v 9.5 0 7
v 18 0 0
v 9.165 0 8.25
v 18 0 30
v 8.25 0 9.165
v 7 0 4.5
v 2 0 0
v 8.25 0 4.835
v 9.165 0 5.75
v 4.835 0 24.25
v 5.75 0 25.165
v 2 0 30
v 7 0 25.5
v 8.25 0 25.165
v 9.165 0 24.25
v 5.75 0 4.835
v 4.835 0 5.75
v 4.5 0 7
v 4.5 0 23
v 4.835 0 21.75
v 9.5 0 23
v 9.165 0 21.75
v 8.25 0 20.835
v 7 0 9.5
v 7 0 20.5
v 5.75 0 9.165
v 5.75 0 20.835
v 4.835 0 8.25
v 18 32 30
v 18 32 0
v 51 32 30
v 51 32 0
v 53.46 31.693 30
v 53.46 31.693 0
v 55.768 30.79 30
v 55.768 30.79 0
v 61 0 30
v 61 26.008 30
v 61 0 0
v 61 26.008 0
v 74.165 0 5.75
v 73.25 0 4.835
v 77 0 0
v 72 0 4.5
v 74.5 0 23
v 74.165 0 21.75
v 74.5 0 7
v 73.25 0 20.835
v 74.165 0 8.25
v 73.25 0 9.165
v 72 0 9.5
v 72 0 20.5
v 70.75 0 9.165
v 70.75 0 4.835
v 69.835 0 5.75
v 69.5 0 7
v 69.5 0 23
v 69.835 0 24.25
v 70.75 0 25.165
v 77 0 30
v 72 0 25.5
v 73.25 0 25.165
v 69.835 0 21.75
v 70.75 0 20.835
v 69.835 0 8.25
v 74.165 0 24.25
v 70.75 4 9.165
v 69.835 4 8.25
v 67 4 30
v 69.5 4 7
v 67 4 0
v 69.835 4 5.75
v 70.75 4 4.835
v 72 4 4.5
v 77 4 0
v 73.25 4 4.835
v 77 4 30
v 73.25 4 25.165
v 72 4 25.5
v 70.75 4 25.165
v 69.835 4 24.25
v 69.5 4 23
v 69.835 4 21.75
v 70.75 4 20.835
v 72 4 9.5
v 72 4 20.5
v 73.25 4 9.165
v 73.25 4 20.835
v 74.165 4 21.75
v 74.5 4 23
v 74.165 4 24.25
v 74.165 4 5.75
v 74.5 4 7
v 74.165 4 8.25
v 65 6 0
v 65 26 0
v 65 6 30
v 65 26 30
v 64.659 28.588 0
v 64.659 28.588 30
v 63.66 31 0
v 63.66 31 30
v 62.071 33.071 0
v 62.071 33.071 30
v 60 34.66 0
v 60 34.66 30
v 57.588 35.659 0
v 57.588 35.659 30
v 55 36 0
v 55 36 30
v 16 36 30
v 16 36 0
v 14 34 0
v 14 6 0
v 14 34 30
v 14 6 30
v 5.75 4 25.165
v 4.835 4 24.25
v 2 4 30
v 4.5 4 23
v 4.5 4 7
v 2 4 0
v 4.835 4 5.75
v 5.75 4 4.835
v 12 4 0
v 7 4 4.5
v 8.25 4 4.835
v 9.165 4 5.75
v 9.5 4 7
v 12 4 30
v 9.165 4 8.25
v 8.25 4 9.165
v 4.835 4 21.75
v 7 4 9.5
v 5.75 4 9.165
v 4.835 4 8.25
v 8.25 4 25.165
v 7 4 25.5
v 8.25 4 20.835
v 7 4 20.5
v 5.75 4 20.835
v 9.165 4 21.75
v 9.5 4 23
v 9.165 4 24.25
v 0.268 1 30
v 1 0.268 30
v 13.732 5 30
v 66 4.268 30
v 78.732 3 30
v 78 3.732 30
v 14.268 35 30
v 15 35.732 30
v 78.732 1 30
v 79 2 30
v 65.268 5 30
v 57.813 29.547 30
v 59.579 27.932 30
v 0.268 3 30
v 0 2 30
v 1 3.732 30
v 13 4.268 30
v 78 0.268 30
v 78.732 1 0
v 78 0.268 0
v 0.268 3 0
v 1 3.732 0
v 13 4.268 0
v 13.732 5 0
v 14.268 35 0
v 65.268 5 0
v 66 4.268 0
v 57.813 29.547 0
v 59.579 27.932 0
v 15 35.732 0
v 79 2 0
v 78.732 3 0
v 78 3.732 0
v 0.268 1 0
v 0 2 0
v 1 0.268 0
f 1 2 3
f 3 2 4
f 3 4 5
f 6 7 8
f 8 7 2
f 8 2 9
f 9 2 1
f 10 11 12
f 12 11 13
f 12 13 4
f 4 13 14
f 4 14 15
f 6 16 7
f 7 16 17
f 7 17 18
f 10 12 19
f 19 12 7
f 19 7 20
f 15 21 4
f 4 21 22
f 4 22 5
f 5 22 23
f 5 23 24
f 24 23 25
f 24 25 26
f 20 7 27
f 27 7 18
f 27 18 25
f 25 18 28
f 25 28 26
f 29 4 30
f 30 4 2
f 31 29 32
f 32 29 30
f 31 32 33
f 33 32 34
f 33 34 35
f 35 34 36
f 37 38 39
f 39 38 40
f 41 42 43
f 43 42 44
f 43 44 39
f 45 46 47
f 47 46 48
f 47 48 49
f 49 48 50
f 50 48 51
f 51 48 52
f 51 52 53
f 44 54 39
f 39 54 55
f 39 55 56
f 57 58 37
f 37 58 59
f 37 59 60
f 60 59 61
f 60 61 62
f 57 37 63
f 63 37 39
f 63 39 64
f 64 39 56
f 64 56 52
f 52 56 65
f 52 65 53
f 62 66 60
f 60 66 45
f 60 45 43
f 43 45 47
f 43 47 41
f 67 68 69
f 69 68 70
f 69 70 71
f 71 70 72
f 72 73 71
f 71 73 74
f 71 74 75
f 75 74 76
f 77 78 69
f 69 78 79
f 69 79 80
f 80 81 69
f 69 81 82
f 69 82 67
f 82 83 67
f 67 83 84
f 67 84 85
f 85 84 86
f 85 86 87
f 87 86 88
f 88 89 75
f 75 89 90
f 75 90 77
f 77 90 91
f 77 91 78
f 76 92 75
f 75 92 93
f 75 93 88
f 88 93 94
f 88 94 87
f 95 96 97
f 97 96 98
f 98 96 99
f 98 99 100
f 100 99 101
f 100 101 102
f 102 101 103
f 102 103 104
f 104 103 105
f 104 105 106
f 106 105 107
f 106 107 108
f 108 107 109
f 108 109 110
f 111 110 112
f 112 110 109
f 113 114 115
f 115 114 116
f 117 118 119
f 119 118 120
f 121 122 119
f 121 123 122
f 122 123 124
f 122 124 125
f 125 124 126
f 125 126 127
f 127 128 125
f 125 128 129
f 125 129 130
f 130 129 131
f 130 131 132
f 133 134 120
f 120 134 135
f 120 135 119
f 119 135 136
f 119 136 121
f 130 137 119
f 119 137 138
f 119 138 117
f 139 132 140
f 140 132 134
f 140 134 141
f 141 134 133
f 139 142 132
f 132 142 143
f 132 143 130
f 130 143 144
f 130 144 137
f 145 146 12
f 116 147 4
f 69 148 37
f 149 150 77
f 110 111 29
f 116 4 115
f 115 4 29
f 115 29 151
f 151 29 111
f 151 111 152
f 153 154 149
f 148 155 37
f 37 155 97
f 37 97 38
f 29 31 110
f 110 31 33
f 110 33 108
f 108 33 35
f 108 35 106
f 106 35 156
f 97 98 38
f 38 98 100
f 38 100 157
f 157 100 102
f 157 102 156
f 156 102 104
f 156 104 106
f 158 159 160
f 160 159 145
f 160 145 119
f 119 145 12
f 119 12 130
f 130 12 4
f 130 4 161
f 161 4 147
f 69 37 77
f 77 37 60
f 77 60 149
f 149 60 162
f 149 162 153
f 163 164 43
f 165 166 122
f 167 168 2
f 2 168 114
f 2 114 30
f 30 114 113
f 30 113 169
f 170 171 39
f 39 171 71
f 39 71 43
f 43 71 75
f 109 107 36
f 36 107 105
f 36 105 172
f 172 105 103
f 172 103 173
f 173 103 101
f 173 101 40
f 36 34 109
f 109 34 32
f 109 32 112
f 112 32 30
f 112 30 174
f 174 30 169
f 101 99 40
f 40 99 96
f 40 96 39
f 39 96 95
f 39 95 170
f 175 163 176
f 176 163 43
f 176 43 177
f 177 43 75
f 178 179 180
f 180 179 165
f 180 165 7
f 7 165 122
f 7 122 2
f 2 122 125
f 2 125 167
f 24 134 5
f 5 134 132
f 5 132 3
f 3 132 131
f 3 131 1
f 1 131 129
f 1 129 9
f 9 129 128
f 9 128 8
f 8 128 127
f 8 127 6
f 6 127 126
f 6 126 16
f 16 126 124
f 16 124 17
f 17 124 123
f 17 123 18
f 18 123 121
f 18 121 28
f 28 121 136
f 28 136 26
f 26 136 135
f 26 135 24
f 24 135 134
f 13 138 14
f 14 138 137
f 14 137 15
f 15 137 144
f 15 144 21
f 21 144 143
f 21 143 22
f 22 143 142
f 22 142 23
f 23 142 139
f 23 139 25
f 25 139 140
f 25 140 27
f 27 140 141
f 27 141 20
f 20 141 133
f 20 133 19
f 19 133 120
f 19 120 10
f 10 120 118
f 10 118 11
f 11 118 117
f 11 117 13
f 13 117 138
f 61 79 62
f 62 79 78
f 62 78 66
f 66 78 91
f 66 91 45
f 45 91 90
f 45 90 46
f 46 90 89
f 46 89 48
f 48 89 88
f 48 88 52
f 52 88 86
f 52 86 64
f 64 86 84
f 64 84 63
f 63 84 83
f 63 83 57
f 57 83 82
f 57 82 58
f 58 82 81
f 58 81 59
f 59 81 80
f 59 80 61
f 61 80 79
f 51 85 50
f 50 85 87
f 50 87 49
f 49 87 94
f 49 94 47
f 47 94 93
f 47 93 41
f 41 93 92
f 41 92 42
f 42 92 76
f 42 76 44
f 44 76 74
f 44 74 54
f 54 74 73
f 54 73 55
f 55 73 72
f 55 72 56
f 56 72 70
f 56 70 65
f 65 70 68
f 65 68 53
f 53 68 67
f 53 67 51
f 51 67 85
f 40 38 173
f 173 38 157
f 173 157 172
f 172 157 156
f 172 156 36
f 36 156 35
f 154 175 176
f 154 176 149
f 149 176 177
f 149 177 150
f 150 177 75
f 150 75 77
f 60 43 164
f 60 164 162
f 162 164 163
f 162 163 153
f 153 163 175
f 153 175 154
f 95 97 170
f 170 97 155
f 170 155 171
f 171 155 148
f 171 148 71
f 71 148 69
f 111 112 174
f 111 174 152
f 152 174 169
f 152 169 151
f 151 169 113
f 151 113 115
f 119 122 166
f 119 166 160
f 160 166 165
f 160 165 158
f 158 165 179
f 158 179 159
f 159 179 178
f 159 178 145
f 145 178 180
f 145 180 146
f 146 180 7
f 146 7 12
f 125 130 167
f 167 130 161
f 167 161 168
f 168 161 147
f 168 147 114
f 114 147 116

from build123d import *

# Parameters (mm, degrees)
BOSS_EXTRUDE1_DEPTH = 30
SKETCH2_R           = 2.5
CUT_EXTRUDE1_DEPTH  = 91.360389552
CUT_EXTRUDE2_DEPTH  = 92.853143659
FILLET1_R           = 2


with BuildPart() as part:
    # Sketch1 → Boss-Extrude1 (new body)
    with BuildSketch(Plane.XY):
        with BuildLine():
            Line((0, 0), (18, 0))
            Line((18, 0), (18, 32))
            Line((18, 32), (51, 32))
            ThreePointArc((51, 32), (58.071067812, 29.071067812), (61, 22))
            Line((61, 22), (61, 0))
            Line((61, 0), (79, 0))
            Line((79, 0), (79, 4))
            Line((79, 4), (65, 4))
            Line((65, 4), (65, 26))
            ThreePointArc((65, 26), (62.071067812, 33.071067812), (55, 36))
            Line((55, 36), (14, 36))
            Line((14, 36), (14, 4))
            Line((14, 4), (0, 4))
            Line((0, 4), (0, 0))
        make_face()
    extrude(amount=BOSS_EXTRUDE1_DEPTH)

    # Sketch2 → Cut-Extrude1 (cut, through all)
    with BuildSketch(Plane(origin=(0, 4, 0), x_dir=(1, 0, 0), z_dir=(0, 1, 0))):
        with Locations(Location((7, -7, 0), (0, 0, 270))):
            Circle(SKETCH2_R)
        with Locations(Location((7, -23, 0), (0, 0, 270))):
            Circle(SKETCH2_R)
        with Locations(Location((72, -7, 0), (0, 0, 270))):
            Circle(SKETCH2_R)
        with Locations(Location((72, -23, 0), (0, 0, 270))):
            Circle(SKETCH2_R)
    extrude(amount=-CUT_EXTRUDE1_DEPTH, mode=Mode.SUBTRACT)

    # Sketch3 → Cut-Extrude2 (cut, through all)
    with BuildSketch(Plane.XY.offset(30)):
        with BuildLine():
            ThreePointArc((55.768474142, 30.789860884), (59.593158366, 27.114452981), (61, 22))
            Line((61, 22), (61, 26.007623502))
            ThreePointArc((61, 26.007623502), (58.735019606, 28.782480547), (55.768474142, 30.789860884))
        make_face()
    extrude(amount=-CUT_EXTRUDE2_DEPTH, mode=Mode.SUBTRACT)

    # Fillet1
    fillet1_edges = [part.edges().sort_by_distance(p)[0] for p in [
        (79, 0, 15),
        (79, 4, 15),
        (65, 4, 15),
        (14, 36, 15),
        (0, 0, 15),
        (0, 4, 15),
        (14, 4, 15),
    ]]
    fillet(fillet1_edges, radius=FILLET1_R - 0.0001)  # a hair under: the kernel refuses the full size


solid = part.part
